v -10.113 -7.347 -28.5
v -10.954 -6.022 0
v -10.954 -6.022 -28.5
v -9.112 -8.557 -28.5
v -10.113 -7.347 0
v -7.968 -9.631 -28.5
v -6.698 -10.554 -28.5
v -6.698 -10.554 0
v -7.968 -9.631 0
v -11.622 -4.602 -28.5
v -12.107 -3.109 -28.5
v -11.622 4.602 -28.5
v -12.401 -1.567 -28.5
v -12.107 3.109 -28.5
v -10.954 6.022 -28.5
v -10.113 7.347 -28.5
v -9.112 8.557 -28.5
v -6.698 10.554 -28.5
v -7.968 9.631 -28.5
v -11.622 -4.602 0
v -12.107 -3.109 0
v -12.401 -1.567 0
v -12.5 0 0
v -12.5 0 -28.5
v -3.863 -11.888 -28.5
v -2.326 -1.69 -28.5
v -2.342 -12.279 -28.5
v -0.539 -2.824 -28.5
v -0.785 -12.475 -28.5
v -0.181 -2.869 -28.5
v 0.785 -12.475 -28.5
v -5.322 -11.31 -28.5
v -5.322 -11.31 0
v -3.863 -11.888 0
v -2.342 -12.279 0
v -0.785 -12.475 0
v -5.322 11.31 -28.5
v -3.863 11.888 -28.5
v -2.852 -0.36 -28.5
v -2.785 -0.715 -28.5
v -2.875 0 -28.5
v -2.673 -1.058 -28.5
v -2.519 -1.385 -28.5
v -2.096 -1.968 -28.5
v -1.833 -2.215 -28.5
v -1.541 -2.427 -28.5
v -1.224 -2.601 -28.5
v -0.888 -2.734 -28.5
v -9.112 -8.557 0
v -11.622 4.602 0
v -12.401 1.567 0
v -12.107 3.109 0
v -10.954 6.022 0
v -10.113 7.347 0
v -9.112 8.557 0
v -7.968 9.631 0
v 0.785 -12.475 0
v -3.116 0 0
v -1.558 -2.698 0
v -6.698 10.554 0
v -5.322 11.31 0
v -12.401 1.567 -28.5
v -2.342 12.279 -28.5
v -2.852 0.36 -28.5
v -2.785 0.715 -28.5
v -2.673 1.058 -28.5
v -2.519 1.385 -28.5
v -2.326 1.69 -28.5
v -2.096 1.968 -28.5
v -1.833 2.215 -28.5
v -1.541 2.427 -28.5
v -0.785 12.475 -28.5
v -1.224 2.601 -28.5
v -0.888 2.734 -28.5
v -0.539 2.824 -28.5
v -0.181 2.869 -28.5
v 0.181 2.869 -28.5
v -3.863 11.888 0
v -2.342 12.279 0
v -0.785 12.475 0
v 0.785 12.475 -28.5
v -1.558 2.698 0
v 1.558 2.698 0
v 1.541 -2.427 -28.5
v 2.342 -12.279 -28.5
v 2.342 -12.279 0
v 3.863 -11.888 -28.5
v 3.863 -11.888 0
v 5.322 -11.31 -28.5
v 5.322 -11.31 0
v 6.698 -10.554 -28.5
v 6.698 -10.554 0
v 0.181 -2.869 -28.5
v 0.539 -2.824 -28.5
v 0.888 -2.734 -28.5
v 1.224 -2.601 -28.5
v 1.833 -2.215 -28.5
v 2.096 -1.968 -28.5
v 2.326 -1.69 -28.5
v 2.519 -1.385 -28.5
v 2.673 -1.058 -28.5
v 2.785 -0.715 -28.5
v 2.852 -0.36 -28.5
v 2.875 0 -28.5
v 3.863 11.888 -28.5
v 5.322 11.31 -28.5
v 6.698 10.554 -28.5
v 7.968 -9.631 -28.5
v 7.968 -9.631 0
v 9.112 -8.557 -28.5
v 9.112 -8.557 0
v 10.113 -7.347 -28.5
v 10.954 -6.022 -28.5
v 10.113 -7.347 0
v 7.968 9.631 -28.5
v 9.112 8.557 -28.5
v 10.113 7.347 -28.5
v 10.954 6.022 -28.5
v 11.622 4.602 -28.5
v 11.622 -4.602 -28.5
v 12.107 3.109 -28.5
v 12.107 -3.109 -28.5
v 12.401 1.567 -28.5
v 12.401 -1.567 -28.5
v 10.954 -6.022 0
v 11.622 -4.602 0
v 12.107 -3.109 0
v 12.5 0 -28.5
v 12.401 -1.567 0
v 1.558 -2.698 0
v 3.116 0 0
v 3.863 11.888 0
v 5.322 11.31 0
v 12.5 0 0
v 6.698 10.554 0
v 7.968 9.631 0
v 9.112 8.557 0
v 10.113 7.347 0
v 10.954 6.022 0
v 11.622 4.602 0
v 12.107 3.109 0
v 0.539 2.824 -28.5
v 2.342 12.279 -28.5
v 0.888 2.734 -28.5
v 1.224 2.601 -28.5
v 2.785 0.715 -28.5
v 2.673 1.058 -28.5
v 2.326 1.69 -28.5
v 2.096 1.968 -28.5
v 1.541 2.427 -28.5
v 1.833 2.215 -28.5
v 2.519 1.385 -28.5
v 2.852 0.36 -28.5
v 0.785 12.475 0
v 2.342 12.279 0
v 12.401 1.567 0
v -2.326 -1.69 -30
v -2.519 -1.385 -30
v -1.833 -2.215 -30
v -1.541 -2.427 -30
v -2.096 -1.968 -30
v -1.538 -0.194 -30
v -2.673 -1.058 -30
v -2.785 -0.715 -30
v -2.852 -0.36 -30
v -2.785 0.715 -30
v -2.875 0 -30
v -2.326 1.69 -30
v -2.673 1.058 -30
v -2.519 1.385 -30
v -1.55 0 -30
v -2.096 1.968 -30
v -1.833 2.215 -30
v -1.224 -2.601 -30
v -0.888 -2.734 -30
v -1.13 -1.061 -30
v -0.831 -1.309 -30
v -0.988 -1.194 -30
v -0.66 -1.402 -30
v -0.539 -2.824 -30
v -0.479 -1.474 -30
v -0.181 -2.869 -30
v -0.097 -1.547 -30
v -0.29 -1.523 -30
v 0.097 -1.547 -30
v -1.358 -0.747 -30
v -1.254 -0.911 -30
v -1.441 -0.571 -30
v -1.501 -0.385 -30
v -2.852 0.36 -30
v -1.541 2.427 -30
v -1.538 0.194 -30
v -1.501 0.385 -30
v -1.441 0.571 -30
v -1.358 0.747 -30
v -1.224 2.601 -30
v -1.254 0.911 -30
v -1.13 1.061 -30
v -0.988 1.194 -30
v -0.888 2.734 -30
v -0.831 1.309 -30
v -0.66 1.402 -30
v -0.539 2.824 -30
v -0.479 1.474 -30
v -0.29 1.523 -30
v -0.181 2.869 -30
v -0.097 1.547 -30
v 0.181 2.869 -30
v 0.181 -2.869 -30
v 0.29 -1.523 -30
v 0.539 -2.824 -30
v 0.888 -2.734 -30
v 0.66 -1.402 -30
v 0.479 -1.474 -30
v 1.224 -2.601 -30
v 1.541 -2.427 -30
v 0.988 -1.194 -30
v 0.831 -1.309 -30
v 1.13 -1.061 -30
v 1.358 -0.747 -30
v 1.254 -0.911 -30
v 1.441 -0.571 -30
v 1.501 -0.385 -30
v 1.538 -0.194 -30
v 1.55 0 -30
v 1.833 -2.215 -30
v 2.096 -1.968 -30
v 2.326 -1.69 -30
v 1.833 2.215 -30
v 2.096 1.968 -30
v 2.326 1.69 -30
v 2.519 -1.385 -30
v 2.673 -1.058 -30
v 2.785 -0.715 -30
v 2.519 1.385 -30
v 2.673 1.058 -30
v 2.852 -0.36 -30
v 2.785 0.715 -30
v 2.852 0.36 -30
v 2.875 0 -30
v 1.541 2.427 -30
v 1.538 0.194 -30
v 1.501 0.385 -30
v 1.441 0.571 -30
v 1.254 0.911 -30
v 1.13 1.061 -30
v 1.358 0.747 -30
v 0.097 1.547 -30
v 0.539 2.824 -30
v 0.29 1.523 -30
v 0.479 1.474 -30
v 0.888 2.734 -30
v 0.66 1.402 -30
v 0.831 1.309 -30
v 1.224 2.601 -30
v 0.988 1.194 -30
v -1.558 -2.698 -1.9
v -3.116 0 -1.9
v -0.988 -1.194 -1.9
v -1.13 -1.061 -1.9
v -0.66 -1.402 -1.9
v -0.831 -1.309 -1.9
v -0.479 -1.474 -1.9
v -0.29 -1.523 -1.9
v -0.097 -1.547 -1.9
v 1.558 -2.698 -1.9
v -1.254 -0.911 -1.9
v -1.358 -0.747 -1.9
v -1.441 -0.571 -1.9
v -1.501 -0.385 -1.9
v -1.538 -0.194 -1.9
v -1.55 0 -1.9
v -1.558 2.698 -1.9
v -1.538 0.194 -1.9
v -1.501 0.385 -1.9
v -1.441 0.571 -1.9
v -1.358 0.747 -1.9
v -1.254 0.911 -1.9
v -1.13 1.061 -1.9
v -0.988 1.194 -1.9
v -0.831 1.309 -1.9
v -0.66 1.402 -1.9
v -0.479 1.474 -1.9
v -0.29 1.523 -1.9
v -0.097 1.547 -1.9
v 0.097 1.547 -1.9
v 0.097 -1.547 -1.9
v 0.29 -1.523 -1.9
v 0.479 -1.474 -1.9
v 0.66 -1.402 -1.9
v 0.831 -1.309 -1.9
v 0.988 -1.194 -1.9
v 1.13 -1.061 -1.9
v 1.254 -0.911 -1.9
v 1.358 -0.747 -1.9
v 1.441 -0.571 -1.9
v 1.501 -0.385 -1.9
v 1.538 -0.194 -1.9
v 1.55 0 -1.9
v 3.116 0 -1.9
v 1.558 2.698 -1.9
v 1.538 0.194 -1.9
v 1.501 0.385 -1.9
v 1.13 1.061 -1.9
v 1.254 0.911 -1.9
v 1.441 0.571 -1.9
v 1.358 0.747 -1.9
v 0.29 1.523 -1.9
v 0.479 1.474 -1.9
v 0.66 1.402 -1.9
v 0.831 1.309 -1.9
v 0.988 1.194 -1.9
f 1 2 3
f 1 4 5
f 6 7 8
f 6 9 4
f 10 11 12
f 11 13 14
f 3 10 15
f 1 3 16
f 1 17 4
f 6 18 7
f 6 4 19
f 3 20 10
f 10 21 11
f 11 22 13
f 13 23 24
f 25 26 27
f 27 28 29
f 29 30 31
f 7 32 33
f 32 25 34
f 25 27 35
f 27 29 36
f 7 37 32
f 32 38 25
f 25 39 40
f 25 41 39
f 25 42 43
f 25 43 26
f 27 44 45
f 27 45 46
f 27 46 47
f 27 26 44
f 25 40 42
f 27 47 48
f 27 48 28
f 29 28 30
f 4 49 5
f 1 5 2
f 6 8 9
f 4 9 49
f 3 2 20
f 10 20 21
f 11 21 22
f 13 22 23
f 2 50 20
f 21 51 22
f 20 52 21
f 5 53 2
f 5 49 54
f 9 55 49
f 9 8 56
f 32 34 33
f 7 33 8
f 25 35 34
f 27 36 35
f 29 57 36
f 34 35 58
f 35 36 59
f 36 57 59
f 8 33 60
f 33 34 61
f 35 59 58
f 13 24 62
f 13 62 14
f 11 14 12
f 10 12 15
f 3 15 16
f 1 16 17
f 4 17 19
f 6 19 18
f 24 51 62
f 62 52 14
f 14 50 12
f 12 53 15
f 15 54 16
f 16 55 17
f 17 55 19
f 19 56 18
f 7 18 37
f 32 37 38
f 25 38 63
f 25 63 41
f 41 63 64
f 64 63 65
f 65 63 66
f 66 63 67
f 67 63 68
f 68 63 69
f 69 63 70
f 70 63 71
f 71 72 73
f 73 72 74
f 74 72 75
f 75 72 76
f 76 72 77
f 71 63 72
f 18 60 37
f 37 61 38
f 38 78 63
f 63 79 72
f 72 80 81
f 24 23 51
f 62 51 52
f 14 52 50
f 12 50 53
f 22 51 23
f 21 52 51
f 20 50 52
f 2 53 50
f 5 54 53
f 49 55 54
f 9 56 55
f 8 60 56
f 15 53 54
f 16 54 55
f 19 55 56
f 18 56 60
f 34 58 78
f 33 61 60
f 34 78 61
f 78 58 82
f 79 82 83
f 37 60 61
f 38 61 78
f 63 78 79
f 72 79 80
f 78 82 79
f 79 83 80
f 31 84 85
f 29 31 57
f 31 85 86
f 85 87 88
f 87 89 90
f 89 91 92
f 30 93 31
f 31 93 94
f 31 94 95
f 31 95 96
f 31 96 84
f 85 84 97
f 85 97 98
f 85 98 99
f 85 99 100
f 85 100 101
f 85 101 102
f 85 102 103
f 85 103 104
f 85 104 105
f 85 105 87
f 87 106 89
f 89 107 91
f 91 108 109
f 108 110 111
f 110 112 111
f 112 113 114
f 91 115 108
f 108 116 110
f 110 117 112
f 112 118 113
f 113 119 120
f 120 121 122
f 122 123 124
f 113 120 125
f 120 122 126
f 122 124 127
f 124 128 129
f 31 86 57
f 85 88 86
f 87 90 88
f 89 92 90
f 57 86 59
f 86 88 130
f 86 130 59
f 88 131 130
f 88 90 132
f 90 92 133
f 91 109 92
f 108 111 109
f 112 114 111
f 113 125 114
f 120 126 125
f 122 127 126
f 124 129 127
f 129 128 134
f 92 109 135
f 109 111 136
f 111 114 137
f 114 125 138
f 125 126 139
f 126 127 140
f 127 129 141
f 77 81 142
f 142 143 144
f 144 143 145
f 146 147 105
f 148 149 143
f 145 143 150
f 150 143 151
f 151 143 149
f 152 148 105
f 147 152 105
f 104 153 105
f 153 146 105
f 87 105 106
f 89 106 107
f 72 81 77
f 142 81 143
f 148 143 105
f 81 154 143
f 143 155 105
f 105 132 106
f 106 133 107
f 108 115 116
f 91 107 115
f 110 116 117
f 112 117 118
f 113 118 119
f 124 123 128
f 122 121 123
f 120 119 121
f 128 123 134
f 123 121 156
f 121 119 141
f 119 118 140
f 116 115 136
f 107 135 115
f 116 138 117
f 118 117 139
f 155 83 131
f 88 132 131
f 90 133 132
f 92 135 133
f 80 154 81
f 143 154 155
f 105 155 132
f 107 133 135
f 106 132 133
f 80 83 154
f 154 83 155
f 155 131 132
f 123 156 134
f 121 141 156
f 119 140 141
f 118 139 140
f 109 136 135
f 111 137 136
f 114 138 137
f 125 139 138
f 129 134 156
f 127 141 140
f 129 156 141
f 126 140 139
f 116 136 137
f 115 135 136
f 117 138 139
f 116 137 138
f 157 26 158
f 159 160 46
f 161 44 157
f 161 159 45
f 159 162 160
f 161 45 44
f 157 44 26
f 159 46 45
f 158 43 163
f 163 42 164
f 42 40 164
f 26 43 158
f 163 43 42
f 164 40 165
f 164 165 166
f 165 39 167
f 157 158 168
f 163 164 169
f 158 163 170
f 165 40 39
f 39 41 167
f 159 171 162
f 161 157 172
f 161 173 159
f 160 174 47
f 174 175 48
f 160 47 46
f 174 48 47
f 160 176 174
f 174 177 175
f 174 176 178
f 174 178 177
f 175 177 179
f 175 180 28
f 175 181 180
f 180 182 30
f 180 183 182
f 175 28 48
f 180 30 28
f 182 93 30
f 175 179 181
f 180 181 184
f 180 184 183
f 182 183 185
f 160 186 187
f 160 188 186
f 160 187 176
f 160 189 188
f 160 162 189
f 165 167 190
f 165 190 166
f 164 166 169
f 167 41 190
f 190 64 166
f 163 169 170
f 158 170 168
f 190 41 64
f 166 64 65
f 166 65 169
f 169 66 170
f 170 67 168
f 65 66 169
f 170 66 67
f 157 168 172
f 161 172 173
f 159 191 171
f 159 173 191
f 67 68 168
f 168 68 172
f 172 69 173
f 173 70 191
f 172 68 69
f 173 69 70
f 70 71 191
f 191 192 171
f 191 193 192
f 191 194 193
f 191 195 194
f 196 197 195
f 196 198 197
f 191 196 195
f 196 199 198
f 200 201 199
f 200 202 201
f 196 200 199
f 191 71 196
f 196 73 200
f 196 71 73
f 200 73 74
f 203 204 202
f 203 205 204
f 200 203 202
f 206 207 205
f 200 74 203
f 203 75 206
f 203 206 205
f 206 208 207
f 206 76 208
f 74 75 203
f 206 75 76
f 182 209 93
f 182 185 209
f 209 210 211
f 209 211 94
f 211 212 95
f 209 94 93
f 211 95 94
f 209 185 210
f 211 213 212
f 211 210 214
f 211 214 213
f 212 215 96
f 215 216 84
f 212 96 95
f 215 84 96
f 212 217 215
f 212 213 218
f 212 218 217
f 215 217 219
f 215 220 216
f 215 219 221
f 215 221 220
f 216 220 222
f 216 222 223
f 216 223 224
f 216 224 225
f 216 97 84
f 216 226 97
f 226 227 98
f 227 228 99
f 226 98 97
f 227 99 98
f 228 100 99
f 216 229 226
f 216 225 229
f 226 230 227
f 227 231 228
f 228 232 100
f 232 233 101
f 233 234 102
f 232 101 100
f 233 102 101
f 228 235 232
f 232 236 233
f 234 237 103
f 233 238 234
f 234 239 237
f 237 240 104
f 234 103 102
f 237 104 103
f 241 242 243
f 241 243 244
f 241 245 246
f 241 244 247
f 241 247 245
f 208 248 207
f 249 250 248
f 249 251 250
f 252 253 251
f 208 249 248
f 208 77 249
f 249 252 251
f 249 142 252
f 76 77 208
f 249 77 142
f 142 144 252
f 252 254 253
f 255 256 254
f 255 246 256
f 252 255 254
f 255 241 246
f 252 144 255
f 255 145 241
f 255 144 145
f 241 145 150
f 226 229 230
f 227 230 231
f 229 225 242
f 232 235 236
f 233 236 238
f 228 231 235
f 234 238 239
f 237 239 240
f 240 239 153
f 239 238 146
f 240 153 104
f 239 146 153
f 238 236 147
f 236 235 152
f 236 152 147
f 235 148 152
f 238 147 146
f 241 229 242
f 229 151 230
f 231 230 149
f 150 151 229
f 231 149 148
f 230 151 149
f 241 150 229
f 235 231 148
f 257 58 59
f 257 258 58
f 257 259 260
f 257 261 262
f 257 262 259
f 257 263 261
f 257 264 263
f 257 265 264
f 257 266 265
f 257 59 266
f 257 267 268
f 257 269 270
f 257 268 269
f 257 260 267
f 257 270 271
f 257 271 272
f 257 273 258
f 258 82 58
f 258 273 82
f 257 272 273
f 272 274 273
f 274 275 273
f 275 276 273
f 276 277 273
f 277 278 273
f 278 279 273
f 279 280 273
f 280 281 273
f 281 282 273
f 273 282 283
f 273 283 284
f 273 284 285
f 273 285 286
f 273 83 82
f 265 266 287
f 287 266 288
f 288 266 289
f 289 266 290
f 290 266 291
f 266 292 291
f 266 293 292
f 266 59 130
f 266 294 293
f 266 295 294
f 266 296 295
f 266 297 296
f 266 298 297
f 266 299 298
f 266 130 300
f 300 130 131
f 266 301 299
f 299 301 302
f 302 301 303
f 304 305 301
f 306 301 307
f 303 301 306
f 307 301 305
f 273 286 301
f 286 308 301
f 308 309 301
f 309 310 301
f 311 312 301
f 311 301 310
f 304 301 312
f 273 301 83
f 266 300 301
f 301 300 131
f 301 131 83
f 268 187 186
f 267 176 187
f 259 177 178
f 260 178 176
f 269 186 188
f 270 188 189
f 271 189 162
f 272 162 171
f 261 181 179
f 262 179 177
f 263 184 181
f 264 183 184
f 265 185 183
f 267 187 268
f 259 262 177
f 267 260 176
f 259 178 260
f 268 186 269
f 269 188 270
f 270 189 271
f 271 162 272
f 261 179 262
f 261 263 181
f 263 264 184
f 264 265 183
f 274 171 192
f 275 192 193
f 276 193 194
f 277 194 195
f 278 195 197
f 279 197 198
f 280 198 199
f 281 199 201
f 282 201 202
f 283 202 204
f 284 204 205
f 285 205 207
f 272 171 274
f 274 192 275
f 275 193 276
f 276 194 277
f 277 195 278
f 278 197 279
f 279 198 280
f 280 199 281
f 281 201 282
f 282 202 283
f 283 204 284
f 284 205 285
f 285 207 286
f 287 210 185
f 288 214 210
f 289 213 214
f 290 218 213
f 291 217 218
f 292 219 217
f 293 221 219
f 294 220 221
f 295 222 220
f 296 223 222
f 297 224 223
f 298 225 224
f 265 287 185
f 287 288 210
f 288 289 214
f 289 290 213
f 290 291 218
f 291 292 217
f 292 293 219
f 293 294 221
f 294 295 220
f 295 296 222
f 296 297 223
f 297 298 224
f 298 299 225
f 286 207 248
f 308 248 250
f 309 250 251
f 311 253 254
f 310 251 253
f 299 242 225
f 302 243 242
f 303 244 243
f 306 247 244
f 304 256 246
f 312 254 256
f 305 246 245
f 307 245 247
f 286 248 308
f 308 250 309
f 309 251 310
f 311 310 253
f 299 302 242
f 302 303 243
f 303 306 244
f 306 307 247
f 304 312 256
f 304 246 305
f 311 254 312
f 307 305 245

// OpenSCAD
$fn = 50;

difference() {
	union() {
		translate(v = [0, 0, -28.5]) {
			cylinder(h = 28.5, r = 12.5);
		}
		#translate(v = [0, 0, -30.0]) {
			cylinder(h = 30, r = 2.875);
		}
	}
	union() {
		translate(v = [0, 0, 0]) {
			rotate(a = [0, 0, 0]) {
				difference() {
					union() {
						translate(v = [0, 0, -1.9]) {
							linear_extrude(height = 1.9) {
								polygon(points = [[3.1158, 0.0], [1.5579000000000005, 2.698361953111554], [-1.5578999999999994, 2.6983619531115544], [-3.1158, 3.815754496783323e-16], [-1.5579000000000014, -2.6983619531115535], [1.557899999999998, -2.6983619531115552]]);
							}
						}
					}
					union();
				}
			}
		}
		#translate(v = [0, 0, -100.0]) {
			cylinder(h = 200, r = 1.55);
		}
	}
}
